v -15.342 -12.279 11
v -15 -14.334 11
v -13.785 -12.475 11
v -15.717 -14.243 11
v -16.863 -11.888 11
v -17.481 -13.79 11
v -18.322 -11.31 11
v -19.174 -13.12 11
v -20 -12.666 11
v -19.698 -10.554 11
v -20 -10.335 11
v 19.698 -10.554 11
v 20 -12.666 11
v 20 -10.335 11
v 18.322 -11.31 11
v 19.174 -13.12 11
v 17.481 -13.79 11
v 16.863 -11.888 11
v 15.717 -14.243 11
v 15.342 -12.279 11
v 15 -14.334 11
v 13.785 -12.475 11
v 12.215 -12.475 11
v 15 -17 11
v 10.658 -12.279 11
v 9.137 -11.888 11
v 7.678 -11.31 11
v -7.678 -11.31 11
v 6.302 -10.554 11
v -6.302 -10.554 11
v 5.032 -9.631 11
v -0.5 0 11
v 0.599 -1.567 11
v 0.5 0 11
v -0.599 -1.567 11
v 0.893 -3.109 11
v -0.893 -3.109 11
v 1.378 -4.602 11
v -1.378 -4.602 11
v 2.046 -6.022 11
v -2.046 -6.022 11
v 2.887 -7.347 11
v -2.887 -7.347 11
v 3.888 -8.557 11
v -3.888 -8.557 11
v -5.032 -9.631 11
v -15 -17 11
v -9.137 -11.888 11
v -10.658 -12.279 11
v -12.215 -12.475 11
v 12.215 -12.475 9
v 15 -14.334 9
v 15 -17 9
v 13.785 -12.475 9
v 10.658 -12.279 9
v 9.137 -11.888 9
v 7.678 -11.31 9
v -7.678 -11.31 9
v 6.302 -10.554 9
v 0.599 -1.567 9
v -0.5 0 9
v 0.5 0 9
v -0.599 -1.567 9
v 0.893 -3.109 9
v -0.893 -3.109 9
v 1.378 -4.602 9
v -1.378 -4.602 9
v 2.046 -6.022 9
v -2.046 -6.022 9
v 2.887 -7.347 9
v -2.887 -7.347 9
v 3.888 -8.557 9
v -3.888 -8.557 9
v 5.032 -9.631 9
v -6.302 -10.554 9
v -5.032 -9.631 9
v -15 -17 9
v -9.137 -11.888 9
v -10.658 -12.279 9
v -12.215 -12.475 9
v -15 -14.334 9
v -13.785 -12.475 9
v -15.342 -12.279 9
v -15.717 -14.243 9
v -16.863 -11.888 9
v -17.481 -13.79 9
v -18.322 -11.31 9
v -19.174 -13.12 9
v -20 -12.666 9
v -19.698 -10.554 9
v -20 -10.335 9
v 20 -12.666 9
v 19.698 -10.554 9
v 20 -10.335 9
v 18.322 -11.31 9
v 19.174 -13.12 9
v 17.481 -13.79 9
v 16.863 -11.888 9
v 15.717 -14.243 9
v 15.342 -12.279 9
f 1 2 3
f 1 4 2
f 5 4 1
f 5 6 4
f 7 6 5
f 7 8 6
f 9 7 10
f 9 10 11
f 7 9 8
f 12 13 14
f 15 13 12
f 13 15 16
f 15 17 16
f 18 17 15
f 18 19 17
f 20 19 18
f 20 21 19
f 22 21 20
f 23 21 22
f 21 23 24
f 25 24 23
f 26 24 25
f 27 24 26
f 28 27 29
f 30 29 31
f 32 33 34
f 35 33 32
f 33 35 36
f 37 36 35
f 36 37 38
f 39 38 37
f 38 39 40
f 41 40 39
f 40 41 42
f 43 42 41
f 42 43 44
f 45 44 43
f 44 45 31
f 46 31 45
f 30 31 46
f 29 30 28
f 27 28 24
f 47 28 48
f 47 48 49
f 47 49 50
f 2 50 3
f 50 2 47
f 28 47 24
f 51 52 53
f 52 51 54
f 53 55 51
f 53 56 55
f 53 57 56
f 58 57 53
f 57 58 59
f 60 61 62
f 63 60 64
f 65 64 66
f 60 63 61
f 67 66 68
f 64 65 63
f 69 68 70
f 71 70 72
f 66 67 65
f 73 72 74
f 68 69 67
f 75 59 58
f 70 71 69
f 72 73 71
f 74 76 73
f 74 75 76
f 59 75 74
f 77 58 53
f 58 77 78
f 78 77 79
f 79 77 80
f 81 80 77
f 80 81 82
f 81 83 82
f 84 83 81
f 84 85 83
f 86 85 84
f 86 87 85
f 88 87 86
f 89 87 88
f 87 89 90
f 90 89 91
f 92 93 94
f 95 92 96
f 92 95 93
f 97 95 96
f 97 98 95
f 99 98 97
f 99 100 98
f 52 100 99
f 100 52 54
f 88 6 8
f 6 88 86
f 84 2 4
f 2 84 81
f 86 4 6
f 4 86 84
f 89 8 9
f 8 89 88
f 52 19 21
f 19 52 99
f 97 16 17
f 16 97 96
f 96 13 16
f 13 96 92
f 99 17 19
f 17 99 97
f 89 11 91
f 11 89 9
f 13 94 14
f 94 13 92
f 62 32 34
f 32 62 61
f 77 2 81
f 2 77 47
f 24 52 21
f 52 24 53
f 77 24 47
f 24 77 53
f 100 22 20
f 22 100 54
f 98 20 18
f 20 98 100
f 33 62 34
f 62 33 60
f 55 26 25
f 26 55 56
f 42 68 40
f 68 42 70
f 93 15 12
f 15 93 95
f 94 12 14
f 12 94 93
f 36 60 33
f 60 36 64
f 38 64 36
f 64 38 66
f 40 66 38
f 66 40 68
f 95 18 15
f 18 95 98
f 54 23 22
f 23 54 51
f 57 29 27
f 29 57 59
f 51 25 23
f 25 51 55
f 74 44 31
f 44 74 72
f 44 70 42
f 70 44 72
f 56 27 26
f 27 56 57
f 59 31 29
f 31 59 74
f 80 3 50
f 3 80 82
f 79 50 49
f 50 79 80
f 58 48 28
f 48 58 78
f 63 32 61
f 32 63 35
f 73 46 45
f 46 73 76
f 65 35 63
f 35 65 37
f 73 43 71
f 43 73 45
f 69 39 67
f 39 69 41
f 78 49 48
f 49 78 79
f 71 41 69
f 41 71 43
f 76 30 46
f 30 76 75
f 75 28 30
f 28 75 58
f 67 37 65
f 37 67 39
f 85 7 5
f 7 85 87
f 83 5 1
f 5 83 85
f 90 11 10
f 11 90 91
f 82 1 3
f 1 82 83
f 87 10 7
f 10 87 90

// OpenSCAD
// file: effector_constants.scad
// effector_constants.scad
// Printable effector platform with a larger center opening for Rostock MAX V2.
// This is a collection of values used to create the objects.
// By Gregg Christopher, 2015
// This file is public domain.
// The Rostock Max V2 is by SeeMeCNC: seemecnc.com

// Manifold assurance.
slop = 0.01;

// M3 arm attachment screw parameters.
arm_screw_r = 1.5;
arm_screw_length = 72;

// Parameters for the arm attachment block.
arm_attachment_width = 37; // It is critical to delta geometery that the arms be identically spaced at the carriage and effector platform! (Or so I have read.)
arm_attachment_height = 10;
arm_attachment_bevel = 1;

// Thickness of the flange for attaching layer fans or other bling.
flange_thickness = 3;

// 6-32 screw hole size. Larger than nominal to counter expected shrinkage of vertically-printed holes.
upright_screw_r = 2.0;

// Parameters for 4-40 screws.
screw_4_40_r = 1.7;
screw_4_40_nut_r = 3.9;
screw_4_40_washer_r = 4.0;
set_screw_offset = 7;

// Fan shroud parameters.
fan_rot = 170;
fan_rot2 = 45;
fan_dy = 18;
fan_screw_attachment_h = 4;

// Parameters relating to the top clamp.
top_clamp_outer_r = 12;
top_clamp_inner_r = 6;
top_clamp_screw_offset = 23;
top_clamp_screw_outer_r = 8;
top_clamp_screw_inner_r = 1.7;

// E3D V6 HotEnd Placement
rotation = 35;
hotend_height = 27.3;
offset = 13;

// Tool distance from effector and spacers.
printed_support_height = hotend_height + 11.7 - arm_attachment_height - 25.4;
spacer_height = hotend_height + 11.7 - arm_attachment_height - printed_support_height;

// Draw a fan case.
module fan_30_mm(holes = 1) {
  color([.5, 1, .5, .8])
  difference() {
    translate([-15, 0, 0]) 
    cube([30, 30, 11]);
    
    if(holes == 1) {
      for(x = [-12, 12]) {
        for(y = [3, 27]) {
          translate([x, y, -slop])
          cylinder(r = 1.5, h = 11 + 2*slop, $fn = 16);
        }
      }
    }
  }
}
// main file
// fan_shroud_bottom.scad
// Printable effector platform with a larger center opening for Rostock MAX V2.
// This is a small bit of extra material for the fan shroud to keep air restricted to the cooling fins and from flowing over the heater element.
// By Gregg Christopher, 2015
// This file is public domain.
// The Rostock Max V2 is by SeeMeCNC: seemecnc.com

include <effector_constants.scad>

module fan_shroud_bottom() {
  // Side fan shroud sections
  difference() {
    union() {
      intersection() {
        translate([-20, -20, arm_attachment_height - 1])
        cube([40, 20, 2]);
        union() {
          translate([-offset, 0, arm_attachment_height - 1])
          cylinder(r = 14.5, h = 2, $fn = 50);
          translate([offset, 0, arm_attachment_height - 1])
          cylinder(r = 14.5, h = 2, $fn = 50);
        }
        
      }
      translate([-15, -17, arm_attachment_height - 1])
      cube([30, 17, 2]);
      
    }
    translate([offset, 0, arm_attachment_height - 1 - slop])
    cylinder(r = 12.5, h = hotend_height + 2.7 + 2*slop, $fn = 50);

    translate([-offset, 0, arm_attachment_height - 1 - slop])
    cylinder(r = 12.5, h = hotend_height + 2.7 + 2*slop, $fn = 50);
  }
}

fan_shroud_bottom();
